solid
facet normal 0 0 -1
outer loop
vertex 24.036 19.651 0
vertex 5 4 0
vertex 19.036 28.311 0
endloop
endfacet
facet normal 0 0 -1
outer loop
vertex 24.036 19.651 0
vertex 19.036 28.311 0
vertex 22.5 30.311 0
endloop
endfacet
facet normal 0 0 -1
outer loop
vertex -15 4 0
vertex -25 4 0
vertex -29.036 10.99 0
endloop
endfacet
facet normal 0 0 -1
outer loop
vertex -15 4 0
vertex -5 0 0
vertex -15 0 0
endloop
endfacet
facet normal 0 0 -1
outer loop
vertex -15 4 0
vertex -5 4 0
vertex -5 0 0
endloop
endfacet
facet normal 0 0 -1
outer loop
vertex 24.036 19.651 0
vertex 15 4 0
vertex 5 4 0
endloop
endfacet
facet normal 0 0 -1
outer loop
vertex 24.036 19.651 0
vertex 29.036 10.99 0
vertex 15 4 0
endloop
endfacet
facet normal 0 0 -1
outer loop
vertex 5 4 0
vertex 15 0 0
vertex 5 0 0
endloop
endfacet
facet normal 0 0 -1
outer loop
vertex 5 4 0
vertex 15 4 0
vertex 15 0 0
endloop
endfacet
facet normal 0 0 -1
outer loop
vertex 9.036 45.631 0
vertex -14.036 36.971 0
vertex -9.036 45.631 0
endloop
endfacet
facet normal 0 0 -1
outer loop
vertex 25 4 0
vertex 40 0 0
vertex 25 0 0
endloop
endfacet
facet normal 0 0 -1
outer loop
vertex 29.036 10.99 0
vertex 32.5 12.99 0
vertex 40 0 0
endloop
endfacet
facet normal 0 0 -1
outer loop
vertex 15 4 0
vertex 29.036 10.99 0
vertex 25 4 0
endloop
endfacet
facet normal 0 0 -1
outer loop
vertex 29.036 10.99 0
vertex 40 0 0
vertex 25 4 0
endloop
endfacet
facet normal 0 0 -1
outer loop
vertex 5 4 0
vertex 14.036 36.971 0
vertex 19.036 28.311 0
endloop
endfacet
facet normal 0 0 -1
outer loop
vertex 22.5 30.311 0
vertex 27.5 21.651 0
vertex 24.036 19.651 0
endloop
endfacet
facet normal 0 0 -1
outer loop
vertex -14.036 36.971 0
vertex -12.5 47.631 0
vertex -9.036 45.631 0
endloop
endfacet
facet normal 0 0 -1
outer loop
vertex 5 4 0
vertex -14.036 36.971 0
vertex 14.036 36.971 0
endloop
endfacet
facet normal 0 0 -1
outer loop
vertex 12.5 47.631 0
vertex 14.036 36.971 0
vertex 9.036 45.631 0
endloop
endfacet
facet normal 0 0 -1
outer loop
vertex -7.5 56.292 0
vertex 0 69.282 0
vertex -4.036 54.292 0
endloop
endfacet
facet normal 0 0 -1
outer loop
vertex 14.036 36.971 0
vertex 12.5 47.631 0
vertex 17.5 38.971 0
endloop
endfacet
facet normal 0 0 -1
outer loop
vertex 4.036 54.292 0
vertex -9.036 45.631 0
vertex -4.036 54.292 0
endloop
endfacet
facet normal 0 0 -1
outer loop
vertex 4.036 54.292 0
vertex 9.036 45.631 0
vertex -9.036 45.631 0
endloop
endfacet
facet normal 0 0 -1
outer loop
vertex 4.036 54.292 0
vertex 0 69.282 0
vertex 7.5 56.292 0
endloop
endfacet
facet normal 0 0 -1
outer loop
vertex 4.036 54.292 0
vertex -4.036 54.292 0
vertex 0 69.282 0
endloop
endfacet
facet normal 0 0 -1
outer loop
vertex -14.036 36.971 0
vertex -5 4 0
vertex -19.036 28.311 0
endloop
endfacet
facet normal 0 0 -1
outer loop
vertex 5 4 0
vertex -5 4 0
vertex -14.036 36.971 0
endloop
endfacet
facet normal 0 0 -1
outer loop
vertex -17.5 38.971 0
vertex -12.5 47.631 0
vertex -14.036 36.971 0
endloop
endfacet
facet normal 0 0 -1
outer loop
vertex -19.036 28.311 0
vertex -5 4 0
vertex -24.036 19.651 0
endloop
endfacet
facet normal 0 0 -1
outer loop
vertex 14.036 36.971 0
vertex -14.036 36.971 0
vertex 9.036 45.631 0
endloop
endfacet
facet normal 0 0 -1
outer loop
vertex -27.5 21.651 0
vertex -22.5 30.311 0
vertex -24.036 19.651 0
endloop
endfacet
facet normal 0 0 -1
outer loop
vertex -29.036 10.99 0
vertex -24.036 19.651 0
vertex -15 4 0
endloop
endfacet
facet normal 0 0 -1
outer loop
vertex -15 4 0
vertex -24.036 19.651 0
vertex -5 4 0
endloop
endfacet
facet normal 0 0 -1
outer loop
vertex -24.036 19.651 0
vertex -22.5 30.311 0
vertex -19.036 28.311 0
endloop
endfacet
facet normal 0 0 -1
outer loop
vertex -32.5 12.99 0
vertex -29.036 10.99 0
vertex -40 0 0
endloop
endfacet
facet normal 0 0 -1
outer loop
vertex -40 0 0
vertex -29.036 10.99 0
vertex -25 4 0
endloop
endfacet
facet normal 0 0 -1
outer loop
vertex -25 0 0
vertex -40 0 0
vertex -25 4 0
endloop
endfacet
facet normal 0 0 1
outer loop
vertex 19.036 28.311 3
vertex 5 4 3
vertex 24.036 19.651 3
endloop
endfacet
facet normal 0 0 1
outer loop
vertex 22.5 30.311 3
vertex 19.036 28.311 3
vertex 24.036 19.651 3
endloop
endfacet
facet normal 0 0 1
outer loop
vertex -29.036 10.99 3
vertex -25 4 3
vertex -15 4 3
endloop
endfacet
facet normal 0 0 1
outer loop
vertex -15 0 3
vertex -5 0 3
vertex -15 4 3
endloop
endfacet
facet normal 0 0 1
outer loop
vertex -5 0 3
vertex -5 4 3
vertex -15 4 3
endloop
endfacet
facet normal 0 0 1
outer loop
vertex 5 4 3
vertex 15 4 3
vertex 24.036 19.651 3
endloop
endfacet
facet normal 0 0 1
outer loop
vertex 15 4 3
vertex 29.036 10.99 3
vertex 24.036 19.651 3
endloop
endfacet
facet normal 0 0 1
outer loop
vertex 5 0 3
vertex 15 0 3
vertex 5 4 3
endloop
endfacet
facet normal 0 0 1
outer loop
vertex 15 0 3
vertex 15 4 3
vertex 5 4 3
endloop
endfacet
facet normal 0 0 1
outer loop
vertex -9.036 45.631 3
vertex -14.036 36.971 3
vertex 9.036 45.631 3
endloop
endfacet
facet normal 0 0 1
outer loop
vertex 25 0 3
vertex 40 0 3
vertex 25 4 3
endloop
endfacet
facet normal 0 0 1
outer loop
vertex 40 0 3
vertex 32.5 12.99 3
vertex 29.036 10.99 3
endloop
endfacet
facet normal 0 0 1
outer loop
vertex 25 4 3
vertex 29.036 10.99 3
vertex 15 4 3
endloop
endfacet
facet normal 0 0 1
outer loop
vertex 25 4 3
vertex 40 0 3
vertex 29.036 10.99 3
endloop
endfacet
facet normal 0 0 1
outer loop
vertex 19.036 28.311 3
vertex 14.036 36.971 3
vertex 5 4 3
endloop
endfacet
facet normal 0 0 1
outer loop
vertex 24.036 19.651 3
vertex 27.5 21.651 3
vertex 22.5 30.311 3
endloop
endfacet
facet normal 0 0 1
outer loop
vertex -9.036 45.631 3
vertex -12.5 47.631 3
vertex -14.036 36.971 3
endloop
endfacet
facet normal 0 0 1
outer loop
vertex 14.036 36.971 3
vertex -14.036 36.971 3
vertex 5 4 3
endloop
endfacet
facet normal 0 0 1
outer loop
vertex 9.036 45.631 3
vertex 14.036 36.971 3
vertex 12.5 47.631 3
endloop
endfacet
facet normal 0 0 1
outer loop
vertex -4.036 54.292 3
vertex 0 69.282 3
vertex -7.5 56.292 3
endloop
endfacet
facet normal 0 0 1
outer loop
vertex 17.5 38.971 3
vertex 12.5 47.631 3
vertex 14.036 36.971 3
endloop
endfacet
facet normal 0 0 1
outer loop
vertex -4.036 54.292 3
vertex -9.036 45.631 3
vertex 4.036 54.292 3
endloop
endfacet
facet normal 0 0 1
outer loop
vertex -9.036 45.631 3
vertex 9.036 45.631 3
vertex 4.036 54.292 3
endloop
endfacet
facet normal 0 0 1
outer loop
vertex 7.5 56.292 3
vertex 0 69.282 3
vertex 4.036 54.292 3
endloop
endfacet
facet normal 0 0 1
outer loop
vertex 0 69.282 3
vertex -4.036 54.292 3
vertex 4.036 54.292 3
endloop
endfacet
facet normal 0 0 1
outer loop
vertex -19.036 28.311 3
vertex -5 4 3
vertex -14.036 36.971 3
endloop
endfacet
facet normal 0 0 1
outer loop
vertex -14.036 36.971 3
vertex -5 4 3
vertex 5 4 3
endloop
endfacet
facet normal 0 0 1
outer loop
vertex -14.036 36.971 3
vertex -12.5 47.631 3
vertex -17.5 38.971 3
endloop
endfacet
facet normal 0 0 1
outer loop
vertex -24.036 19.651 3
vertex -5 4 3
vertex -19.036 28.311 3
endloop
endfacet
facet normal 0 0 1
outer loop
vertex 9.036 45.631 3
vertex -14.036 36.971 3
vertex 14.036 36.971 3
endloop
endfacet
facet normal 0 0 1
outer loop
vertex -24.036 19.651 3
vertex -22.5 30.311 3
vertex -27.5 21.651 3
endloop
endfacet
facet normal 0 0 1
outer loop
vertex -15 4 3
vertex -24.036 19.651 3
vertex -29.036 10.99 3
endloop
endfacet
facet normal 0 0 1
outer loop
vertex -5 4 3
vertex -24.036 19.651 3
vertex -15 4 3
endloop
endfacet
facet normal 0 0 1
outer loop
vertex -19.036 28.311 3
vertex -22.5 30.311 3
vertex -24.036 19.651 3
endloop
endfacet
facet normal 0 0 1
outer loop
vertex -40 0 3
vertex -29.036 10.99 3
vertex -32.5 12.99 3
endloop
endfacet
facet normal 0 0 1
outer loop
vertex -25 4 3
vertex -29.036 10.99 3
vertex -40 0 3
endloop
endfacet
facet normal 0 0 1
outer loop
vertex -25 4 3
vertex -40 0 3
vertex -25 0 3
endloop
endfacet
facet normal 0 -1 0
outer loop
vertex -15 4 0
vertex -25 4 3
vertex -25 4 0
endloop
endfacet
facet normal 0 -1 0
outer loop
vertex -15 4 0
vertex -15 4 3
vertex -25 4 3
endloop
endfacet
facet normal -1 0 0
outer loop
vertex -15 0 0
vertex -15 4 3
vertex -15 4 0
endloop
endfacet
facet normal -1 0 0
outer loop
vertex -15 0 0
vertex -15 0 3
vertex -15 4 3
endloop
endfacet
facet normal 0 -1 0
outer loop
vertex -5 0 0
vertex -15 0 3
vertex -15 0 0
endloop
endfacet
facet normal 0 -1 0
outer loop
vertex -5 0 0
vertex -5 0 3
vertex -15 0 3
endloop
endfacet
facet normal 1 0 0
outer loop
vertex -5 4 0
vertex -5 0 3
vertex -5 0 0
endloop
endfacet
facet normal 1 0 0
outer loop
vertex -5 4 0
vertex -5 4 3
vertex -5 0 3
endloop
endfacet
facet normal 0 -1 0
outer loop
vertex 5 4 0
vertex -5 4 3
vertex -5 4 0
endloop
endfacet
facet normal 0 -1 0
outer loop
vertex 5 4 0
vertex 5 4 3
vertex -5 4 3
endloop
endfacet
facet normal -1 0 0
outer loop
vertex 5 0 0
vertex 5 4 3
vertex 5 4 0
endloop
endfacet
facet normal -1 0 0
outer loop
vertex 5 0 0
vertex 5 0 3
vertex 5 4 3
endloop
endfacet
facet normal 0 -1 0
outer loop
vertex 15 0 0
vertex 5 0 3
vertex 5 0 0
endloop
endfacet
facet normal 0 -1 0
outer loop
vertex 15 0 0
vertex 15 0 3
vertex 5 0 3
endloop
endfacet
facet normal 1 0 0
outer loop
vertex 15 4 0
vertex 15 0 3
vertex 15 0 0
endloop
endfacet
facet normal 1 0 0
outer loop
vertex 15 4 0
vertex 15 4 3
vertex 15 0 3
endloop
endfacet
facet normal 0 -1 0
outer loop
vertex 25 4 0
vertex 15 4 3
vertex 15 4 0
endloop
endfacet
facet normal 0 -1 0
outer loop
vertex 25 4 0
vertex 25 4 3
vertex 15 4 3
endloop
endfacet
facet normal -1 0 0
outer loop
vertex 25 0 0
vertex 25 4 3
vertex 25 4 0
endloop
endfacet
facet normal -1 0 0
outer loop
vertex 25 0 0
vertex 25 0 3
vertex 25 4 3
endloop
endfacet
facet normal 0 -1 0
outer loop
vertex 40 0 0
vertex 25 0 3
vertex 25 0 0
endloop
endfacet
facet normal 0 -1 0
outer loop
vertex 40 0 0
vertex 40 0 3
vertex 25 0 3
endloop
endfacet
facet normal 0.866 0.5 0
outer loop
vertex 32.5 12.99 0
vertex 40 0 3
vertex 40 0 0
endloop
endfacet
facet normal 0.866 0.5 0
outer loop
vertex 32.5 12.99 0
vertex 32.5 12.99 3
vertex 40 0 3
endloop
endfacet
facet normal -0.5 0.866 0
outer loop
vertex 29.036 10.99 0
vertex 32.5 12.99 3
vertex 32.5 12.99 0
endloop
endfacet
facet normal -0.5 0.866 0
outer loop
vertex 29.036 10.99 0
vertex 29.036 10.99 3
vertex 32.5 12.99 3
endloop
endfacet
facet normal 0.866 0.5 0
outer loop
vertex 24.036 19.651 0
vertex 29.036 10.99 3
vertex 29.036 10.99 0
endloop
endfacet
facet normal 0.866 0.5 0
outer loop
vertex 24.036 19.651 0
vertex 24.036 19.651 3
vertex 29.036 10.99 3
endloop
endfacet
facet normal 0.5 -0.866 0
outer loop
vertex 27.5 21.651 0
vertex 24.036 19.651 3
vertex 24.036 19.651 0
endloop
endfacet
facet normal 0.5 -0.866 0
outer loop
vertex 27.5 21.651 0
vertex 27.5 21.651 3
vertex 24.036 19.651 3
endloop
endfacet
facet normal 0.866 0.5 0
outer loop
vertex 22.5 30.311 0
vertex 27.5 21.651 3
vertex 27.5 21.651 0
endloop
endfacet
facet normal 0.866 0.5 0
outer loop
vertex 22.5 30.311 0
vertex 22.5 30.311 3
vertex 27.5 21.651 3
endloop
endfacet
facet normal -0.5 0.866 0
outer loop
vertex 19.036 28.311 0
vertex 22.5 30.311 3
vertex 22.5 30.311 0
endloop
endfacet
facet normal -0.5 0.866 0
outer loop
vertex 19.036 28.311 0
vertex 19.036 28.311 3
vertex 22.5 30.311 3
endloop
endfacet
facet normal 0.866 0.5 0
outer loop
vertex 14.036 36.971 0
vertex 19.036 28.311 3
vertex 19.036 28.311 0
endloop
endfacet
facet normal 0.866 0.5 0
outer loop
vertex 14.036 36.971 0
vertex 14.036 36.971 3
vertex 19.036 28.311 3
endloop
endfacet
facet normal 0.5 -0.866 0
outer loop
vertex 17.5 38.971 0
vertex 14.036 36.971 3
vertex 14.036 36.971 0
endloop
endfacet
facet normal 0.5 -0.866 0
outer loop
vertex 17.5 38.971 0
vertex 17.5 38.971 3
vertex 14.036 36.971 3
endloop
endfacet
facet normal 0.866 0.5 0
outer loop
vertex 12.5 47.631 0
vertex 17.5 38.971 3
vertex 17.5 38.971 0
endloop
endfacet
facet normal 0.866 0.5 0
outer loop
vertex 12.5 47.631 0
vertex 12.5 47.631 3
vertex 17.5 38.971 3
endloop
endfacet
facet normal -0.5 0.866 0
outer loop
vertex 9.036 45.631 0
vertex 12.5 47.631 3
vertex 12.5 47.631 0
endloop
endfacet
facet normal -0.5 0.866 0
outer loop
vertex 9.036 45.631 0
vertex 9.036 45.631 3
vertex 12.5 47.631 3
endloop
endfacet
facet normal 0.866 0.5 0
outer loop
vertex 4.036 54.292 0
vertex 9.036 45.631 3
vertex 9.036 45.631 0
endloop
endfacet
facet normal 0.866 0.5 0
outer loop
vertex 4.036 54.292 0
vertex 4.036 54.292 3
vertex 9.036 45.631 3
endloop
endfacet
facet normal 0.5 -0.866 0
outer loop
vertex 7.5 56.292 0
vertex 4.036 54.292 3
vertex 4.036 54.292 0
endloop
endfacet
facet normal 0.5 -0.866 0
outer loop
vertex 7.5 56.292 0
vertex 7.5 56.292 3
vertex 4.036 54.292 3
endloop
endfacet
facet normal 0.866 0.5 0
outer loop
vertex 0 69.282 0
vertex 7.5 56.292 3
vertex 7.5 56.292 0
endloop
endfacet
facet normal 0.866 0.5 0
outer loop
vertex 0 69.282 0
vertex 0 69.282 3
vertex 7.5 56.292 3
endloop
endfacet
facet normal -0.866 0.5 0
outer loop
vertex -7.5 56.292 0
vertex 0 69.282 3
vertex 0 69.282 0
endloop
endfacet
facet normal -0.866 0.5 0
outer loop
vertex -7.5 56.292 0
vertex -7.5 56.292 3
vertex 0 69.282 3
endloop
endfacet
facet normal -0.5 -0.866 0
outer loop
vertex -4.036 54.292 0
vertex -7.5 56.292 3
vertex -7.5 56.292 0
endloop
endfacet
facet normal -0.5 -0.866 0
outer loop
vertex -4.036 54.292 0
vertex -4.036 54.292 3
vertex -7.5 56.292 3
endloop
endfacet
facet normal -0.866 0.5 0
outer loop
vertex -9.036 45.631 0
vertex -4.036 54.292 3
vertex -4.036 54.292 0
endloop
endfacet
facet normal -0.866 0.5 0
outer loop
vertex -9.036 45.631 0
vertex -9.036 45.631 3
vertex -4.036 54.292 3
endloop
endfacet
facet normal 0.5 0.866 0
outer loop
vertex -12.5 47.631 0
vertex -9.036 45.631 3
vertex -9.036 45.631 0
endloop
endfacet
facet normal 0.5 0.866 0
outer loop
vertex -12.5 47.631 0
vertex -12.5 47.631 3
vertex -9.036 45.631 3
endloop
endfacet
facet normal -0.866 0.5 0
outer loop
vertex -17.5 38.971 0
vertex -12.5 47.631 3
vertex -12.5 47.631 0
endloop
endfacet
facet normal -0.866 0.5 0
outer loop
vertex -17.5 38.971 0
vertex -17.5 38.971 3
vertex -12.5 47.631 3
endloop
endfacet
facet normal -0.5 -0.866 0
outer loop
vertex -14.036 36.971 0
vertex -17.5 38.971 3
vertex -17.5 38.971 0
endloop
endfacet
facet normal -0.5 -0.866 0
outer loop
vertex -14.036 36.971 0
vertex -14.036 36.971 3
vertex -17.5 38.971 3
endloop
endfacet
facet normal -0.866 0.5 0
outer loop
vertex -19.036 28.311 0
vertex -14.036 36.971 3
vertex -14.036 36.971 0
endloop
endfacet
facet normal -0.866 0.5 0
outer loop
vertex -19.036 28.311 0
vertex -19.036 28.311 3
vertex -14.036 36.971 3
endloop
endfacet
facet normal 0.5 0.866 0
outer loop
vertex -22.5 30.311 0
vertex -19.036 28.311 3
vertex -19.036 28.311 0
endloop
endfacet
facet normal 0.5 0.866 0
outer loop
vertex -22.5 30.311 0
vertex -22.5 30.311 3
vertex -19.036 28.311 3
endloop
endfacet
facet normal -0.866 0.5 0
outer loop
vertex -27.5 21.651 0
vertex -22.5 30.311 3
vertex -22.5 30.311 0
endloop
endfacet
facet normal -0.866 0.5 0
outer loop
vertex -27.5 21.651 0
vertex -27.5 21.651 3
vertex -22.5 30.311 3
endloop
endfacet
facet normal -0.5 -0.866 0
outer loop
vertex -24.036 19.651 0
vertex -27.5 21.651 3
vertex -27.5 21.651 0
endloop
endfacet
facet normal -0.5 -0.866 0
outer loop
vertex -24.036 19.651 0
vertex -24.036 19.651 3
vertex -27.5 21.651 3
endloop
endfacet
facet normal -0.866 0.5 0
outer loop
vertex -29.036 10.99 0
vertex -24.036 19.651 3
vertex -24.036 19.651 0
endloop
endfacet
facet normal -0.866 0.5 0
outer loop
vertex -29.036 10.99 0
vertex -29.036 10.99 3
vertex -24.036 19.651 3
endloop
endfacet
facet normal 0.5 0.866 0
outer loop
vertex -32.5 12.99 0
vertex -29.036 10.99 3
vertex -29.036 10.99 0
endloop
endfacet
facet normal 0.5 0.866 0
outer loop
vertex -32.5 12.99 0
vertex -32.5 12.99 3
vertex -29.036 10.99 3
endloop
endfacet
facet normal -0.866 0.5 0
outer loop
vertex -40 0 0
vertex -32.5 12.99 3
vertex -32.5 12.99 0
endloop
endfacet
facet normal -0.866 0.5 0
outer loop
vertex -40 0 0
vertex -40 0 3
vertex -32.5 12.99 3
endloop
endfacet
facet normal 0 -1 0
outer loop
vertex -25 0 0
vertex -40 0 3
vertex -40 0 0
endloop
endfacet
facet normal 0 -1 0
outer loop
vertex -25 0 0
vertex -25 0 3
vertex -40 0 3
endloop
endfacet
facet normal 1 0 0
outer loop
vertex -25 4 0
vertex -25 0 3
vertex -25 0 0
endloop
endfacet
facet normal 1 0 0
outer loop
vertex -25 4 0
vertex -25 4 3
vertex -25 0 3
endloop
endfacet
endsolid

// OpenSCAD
/* 
 * Stackenlichten-Files I: The top plate
 *
 * kellertuer, 2017-02-19
 */

/*
 * Variables, all Data in mm
 */
wW      = 4;  // Thickness/Width of wood
mW    = 4;   //                 of a Magnet-Cube
fW     = 3; // Thickness of the front plastic plate
sL = 80;    // sidelength of a triangle
bD = 80;   // Depth of a box (depth w.r.t. frontview)
fC = 3; // number of fingers
// don't change these values
nD = 2*fC+2; //number of Divisions, due to 2fC+1 segments and one segment that split in the corners

// concat with shfted rotated versions... bottom left right

// Generate triangle
PointLine = concat(genSide(),genSide(-120,[sL/4,sL*sqrt(3)/4]),genSide(120,[-sL/4,sL*sqrt(3)/4]));

color([1,0,1])
linear_extrude(height=fW, twist=0) polygon(points=PointLine);

/*
 * Helping Functions - Generate one side of the triangle recursion olé olé
 */
function genSide(a=0,v=[0,0]) = generateSide([rotM(a)*[-sL/2,0]+v],0,a,v);   
//Recursively generate fC toothes
function generateSide(pL,i,a,v) = (i==fC) ? concat(pL,[rotM(a)*[sL/2,0]+v])
    : generateSide(concat(pL,[
        rotM(a)*[-sL/2+(2*i+1.5)*sL/nD,0]+v, rotM(a)*[-sL/2+(2*i+1.5)*sL/nD,wW]+v,
        rotM(a)*[-sL/2+(2*i+2.5)*sL/nD,wW]+v, rotM(a)*[-sL/2+(2*i+2.5)*sL/nD,0]+v]),i+1,a,v);
function rotM(a) = [[cos(a),sin(a)],[-sin(a),cos(a)]];
